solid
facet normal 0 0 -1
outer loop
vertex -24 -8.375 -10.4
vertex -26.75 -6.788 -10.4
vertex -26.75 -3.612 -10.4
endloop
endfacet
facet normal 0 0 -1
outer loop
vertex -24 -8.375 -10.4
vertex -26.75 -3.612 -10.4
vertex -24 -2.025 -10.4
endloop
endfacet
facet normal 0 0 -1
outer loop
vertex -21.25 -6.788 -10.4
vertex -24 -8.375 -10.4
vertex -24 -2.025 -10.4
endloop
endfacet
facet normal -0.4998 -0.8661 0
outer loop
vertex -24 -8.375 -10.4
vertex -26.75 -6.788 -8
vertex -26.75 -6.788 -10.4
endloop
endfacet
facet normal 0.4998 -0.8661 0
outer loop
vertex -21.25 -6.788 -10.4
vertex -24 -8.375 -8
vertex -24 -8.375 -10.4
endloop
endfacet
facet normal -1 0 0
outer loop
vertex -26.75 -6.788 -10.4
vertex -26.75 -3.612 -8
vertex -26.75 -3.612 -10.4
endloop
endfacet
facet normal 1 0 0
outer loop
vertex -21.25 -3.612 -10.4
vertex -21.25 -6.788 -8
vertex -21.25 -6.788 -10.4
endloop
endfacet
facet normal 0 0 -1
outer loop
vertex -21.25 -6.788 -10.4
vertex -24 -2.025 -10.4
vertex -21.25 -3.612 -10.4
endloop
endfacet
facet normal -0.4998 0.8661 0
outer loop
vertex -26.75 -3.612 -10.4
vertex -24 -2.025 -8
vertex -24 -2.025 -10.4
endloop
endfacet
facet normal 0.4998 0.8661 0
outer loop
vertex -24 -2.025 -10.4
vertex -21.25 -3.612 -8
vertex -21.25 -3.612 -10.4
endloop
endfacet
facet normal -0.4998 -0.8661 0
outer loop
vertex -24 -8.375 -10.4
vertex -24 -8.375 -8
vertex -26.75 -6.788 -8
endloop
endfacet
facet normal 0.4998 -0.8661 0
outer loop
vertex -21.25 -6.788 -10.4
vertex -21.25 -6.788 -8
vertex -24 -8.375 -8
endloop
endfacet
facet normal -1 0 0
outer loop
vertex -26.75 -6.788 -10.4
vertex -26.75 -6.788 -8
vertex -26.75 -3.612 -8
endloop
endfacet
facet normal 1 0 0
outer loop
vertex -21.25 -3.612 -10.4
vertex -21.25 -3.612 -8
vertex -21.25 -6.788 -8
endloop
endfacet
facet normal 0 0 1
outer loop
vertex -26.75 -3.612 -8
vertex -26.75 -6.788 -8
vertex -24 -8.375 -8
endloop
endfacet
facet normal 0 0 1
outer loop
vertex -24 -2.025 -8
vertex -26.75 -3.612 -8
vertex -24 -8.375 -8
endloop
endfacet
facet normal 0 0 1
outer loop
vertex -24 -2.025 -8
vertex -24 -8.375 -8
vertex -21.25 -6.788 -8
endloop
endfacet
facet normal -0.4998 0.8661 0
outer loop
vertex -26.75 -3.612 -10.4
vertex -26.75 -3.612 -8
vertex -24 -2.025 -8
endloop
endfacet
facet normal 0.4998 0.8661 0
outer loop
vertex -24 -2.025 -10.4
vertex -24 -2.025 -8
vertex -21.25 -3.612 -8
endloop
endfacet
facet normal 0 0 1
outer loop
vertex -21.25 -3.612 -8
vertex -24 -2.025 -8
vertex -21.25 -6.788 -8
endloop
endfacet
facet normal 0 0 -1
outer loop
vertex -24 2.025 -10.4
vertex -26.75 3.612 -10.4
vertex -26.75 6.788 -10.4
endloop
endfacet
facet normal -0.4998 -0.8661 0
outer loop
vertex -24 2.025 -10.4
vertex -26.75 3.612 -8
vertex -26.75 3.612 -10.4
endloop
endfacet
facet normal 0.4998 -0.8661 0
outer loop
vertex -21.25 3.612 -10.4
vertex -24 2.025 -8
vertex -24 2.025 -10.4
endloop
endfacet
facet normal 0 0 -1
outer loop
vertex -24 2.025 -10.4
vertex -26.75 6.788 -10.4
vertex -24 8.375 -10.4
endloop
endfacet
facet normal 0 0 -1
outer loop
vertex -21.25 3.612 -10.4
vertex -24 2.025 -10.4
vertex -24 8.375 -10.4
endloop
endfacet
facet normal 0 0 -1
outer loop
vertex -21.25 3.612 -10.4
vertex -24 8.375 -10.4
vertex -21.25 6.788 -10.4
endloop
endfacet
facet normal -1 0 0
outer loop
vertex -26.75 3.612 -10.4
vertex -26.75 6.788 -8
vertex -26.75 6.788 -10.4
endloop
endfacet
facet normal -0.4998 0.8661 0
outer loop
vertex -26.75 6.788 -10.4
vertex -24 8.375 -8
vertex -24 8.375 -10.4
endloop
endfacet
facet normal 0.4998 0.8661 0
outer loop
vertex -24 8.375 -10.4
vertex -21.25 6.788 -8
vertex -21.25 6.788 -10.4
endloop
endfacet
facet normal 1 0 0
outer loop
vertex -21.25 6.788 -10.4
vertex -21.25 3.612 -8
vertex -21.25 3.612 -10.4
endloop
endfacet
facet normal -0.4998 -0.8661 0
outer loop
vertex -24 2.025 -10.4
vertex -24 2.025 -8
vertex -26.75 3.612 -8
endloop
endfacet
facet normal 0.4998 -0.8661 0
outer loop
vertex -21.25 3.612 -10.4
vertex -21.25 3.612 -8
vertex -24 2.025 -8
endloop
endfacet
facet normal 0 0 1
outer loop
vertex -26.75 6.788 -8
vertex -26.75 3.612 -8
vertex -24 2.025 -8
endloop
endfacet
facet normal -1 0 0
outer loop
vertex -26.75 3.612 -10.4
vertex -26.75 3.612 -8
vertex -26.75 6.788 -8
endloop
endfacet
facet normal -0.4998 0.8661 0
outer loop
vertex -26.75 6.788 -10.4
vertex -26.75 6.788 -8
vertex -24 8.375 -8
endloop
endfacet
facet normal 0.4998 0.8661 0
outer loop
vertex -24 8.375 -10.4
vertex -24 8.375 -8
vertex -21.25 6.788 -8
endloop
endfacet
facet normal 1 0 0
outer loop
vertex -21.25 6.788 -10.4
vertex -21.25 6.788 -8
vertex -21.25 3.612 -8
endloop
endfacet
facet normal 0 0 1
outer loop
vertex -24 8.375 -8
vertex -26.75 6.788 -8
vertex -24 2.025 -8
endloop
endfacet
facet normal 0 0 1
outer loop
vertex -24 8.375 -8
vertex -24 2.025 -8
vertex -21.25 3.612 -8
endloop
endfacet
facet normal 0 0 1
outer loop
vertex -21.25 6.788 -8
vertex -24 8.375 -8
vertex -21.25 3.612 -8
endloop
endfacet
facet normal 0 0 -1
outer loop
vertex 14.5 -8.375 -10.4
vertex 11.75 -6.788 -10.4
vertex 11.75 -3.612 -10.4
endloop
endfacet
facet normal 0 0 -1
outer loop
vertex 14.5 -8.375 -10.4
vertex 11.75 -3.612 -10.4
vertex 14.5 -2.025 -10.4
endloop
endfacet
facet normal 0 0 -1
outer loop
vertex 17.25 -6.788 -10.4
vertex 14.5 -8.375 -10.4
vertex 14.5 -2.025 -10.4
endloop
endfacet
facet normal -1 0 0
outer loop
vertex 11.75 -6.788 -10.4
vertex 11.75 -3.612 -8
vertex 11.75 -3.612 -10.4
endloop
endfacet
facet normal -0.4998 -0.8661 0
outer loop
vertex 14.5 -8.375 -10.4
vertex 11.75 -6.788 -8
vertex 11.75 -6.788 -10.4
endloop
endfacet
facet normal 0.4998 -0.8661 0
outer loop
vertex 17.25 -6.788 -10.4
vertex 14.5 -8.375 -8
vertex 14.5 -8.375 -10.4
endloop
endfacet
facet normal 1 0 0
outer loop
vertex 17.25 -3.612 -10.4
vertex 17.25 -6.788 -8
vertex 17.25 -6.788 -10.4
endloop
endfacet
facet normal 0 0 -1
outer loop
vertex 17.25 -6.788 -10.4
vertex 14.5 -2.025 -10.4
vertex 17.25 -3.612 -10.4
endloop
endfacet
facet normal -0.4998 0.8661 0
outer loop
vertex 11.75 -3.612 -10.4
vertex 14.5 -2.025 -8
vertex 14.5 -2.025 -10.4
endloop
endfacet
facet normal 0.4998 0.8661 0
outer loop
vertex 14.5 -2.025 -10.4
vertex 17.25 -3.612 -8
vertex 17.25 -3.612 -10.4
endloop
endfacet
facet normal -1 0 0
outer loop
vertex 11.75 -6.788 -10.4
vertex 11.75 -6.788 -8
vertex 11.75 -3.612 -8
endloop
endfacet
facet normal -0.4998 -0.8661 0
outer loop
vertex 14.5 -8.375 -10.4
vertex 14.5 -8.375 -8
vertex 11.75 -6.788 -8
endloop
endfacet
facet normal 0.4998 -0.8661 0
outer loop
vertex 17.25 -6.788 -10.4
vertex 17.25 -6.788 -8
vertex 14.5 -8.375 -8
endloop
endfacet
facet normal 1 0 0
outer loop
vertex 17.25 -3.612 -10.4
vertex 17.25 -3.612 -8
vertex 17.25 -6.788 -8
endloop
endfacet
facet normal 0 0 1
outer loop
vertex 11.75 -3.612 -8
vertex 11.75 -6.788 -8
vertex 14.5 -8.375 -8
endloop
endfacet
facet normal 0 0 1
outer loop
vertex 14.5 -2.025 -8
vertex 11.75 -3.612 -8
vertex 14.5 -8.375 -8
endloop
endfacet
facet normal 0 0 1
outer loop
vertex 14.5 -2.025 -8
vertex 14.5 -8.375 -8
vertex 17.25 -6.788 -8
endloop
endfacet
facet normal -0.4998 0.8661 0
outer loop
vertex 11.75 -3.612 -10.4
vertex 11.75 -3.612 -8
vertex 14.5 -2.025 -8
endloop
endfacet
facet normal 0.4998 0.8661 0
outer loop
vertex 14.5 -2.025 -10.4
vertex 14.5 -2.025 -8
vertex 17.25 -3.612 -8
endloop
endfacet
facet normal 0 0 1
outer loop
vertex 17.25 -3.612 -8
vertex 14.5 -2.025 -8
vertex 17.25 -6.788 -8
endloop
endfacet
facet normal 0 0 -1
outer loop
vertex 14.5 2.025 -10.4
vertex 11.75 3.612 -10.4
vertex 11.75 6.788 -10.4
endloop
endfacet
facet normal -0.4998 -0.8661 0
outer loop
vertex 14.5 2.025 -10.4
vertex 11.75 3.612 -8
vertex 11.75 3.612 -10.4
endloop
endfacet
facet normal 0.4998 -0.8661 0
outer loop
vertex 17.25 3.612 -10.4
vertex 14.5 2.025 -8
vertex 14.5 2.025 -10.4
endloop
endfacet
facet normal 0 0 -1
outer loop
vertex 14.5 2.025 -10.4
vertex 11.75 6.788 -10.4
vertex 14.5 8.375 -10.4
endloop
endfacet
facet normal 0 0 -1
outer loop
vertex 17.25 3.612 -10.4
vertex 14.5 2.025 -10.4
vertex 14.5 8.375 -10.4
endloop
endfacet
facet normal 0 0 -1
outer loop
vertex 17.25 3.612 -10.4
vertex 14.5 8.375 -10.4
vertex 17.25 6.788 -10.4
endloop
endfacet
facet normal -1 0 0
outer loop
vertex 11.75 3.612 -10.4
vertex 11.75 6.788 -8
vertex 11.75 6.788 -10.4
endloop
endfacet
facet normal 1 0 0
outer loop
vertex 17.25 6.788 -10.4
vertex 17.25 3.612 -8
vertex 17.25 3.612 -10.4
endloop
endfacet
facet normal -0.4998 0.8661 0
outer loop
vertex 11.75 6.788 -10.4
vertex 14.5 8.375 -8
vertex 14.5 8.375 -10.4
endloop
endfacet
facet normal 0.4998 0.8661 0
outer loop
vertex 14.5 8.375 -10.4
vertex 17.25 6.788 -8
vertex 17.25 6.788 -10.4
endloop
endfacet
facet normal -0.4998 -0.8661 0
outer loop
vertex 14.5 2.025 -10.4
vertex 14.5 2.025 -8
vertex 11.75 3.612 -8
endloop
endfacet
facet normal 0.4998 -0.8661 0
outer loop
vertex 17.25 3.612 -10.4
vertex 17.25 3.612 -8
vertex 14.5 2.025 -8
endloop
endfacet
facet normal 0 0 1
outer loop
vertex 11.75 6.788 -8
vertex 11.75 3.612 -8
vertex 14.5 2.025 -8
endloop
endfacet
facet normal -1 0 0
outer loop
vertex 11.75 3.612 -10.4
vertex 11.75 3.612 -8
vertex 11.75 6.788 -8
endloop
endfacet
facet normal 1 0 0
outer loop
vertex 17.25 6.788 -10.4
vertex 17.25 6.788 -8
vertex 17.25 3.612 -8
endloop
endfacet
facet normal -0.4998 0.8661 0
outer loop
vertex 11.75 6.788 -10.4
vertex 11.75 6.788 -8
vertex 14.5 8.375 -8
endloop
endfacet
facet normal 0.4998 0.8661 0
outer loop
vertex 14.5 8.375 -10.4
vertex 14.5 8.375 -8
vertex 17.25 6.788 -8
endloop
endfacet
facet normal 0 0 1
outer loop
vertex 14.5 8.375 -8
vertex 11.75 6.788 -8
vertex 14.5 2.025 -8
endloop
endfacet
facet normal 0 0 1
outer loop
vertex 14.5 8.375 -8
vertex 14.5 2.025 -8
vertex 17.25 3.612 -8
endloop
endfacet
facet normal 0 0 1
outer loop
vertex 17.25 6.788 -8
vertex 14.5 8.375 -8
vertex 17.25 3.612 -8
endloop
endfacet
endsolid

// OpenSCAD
$fn = 50;

difference() {
	union() {
		translate(v = [-24, -5.2, -10.4]) {
			rotate(a = [0, 0, 30]) {
				linear_extrude(height = 2.4) {
					polygon(points = [[3.1754264805429417, 0.0], [1.5877132402714713, 2.75], [-1.5877132402714702, 2.7500000000000004], [-3.1754264805429417, 3.888775875324659e-16], [-1.5877132402714722, -2.7499999999999996], [1.5877132402714687, -2.7500000000000013]]);
				}
			}
		}
		translate(v = [-24, 5.2, -10.4]) {
			rotate(a = [0, 0, 30]) {
				linear_extrude(height = 2.4) {
					polygon(points = [[3.1754264805429417, 0.0], [1.5877132402714713, 2.75], [-1.5877132402714702, 2.7500000000000004], [-3.1754264805429417, 3.888775875324659e-16], [-1.5877132402714722, -2.7499999999999996], [1.5877132402714687, -2.7500000000000013]]);
				}
			}
		}
		translate(v = [14.5, -5.2, -10.4]) {
			rotate(a = [0, 0, 30]) {
				linear_extrude(height = 2.4) {
					polygon(points = [[3.1754264805429417, 0.0], [1.5877132402714713, 2.75], [-1.5877132402714702, 2.7500000000000004], [-3.1754264805429417, 3.888775875324659e-16], [-1.5877132402714722, -2.7499999999999996], [1.5877132402714687, -2.7500000000000013]]);
				}
			}
		}
		translate(v = [14.5, 5.2, -10.4]) {
			rotate(a = [0, 0, 30]) {
				linear_extrude(height = 2.4) {
					polygon(points = [[3.1754264805429417, 0.0], [1.5877132402714713, 2.75], [-1.5877132402714702, 2.7500000000000004], [-3.1754264805429417, 3.888775875324659e-16], [-1.5877132402714722, -2.7499999999999996], [1.5877132402714687, -2.7500000000000013]]);
				}
			}
		}
	}
	union();
}
